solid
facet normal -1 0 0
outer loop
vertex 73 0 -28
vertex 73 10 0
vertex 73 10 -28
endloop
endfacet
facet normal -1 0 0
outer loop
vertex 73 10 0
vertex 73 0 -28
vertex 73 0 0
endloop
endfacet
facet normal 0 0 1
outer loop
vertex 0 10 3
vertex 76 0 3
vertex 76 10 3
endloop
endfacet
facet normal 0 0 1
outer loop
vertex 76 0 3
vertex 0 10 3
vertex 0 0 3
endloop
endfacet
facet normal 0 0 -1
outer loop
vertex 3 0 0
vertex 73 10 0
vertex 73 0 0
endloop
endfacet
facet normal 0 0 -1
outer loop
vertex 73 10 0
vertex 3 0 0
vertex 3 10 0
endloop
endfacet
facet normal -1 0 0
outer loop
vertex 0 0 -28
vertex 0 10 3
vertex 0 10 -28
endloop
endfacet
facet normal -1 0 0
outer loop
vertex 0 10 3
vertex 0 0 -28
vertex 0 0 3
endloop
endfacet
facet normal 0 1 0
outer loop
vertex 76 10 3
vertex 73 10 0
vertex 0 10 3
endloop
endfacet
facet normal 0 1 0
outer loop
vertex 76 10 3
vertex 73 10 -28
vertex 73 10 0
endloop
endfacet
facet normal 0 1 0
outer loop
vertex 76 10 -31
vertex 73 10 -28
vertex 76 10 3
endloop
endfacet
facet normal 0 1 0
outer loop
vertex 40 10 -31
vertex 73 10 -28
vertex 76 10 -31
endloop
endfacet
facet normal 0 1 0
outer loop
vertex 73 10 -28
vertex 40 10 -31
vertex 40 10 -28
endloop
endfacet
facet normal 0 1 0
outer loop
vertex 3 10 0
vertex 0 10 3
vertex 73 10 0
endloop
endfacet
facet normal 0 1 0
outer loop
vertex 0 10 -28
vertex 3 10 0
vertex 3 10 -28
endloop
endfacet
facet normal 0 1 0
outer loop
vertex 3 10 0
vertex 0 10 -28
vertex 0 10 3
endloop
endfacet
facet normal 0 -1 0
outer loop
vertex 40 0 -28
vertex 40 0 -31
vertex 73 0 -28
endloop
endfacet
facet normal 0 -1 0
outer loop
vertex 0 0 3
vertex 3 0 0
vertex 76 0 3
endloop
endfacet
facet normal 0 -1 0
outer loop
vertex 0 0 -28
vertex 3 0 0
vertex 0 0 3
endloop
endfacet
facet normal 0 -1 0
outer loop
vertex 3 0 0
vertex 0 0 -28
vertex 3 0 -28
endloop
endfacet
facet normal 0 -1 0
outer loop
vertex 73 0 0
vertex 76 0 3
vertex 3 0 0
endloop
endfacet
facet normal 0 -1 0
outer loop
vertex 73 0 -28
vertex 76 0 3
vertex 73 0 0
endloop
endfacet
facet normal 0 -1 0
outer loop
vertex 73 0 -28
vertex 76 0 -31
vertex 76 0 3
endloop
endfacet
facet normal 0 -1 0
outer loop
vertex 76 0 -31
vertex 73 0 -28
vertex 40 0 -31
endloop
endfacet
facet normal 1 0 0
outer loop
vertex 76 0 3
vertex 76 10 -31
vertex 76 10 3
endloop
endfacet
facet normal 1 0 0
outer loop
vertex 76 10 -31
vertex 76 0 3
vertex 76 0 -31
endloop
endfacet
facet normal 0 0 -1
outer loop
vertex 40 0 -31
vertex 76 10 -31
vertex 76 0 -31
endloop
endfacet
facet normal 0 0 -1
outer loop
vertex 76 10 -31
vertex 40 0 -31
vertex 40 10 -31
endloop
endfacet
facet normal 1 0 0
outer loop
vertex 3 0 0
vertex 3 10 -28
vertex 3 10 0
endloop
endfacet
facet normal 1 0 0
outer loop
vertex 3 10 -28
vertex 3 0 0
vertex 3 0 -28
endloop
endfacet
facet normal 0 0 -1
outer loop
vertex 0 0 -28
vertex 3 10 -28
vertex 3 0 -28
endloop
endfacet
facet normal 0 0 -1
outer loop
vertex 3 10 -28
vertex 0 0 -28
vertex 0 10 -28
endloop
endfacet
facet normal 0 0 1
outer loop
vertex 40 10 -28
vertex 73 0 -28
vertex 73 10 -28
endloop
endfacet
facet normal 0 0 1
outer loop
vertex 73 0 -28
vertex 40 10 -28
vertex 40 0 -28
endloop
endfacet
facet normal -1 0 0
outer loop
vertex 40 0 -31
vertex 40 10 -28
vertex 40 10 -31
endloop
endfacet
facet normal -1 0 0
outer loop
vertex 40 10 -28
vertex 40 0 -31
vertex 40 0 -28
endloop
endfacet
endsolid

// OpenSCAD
thickness = 3;
width = 10;
length = 73;
height = 28;
offset = 33;

color([0, 0, 1])
cube([length, width, thickness]);

color([0, 1, 0])
translate([length, 0, -height-thickness])
cube([thickness, width, height+2*thickness]);

color([1, 0, 0])
translate([0, 0, -height])
cube([thickness, width, height]);

translate([length-offset, 0, -height-thickness])
cube([offset, width, thickness]);
